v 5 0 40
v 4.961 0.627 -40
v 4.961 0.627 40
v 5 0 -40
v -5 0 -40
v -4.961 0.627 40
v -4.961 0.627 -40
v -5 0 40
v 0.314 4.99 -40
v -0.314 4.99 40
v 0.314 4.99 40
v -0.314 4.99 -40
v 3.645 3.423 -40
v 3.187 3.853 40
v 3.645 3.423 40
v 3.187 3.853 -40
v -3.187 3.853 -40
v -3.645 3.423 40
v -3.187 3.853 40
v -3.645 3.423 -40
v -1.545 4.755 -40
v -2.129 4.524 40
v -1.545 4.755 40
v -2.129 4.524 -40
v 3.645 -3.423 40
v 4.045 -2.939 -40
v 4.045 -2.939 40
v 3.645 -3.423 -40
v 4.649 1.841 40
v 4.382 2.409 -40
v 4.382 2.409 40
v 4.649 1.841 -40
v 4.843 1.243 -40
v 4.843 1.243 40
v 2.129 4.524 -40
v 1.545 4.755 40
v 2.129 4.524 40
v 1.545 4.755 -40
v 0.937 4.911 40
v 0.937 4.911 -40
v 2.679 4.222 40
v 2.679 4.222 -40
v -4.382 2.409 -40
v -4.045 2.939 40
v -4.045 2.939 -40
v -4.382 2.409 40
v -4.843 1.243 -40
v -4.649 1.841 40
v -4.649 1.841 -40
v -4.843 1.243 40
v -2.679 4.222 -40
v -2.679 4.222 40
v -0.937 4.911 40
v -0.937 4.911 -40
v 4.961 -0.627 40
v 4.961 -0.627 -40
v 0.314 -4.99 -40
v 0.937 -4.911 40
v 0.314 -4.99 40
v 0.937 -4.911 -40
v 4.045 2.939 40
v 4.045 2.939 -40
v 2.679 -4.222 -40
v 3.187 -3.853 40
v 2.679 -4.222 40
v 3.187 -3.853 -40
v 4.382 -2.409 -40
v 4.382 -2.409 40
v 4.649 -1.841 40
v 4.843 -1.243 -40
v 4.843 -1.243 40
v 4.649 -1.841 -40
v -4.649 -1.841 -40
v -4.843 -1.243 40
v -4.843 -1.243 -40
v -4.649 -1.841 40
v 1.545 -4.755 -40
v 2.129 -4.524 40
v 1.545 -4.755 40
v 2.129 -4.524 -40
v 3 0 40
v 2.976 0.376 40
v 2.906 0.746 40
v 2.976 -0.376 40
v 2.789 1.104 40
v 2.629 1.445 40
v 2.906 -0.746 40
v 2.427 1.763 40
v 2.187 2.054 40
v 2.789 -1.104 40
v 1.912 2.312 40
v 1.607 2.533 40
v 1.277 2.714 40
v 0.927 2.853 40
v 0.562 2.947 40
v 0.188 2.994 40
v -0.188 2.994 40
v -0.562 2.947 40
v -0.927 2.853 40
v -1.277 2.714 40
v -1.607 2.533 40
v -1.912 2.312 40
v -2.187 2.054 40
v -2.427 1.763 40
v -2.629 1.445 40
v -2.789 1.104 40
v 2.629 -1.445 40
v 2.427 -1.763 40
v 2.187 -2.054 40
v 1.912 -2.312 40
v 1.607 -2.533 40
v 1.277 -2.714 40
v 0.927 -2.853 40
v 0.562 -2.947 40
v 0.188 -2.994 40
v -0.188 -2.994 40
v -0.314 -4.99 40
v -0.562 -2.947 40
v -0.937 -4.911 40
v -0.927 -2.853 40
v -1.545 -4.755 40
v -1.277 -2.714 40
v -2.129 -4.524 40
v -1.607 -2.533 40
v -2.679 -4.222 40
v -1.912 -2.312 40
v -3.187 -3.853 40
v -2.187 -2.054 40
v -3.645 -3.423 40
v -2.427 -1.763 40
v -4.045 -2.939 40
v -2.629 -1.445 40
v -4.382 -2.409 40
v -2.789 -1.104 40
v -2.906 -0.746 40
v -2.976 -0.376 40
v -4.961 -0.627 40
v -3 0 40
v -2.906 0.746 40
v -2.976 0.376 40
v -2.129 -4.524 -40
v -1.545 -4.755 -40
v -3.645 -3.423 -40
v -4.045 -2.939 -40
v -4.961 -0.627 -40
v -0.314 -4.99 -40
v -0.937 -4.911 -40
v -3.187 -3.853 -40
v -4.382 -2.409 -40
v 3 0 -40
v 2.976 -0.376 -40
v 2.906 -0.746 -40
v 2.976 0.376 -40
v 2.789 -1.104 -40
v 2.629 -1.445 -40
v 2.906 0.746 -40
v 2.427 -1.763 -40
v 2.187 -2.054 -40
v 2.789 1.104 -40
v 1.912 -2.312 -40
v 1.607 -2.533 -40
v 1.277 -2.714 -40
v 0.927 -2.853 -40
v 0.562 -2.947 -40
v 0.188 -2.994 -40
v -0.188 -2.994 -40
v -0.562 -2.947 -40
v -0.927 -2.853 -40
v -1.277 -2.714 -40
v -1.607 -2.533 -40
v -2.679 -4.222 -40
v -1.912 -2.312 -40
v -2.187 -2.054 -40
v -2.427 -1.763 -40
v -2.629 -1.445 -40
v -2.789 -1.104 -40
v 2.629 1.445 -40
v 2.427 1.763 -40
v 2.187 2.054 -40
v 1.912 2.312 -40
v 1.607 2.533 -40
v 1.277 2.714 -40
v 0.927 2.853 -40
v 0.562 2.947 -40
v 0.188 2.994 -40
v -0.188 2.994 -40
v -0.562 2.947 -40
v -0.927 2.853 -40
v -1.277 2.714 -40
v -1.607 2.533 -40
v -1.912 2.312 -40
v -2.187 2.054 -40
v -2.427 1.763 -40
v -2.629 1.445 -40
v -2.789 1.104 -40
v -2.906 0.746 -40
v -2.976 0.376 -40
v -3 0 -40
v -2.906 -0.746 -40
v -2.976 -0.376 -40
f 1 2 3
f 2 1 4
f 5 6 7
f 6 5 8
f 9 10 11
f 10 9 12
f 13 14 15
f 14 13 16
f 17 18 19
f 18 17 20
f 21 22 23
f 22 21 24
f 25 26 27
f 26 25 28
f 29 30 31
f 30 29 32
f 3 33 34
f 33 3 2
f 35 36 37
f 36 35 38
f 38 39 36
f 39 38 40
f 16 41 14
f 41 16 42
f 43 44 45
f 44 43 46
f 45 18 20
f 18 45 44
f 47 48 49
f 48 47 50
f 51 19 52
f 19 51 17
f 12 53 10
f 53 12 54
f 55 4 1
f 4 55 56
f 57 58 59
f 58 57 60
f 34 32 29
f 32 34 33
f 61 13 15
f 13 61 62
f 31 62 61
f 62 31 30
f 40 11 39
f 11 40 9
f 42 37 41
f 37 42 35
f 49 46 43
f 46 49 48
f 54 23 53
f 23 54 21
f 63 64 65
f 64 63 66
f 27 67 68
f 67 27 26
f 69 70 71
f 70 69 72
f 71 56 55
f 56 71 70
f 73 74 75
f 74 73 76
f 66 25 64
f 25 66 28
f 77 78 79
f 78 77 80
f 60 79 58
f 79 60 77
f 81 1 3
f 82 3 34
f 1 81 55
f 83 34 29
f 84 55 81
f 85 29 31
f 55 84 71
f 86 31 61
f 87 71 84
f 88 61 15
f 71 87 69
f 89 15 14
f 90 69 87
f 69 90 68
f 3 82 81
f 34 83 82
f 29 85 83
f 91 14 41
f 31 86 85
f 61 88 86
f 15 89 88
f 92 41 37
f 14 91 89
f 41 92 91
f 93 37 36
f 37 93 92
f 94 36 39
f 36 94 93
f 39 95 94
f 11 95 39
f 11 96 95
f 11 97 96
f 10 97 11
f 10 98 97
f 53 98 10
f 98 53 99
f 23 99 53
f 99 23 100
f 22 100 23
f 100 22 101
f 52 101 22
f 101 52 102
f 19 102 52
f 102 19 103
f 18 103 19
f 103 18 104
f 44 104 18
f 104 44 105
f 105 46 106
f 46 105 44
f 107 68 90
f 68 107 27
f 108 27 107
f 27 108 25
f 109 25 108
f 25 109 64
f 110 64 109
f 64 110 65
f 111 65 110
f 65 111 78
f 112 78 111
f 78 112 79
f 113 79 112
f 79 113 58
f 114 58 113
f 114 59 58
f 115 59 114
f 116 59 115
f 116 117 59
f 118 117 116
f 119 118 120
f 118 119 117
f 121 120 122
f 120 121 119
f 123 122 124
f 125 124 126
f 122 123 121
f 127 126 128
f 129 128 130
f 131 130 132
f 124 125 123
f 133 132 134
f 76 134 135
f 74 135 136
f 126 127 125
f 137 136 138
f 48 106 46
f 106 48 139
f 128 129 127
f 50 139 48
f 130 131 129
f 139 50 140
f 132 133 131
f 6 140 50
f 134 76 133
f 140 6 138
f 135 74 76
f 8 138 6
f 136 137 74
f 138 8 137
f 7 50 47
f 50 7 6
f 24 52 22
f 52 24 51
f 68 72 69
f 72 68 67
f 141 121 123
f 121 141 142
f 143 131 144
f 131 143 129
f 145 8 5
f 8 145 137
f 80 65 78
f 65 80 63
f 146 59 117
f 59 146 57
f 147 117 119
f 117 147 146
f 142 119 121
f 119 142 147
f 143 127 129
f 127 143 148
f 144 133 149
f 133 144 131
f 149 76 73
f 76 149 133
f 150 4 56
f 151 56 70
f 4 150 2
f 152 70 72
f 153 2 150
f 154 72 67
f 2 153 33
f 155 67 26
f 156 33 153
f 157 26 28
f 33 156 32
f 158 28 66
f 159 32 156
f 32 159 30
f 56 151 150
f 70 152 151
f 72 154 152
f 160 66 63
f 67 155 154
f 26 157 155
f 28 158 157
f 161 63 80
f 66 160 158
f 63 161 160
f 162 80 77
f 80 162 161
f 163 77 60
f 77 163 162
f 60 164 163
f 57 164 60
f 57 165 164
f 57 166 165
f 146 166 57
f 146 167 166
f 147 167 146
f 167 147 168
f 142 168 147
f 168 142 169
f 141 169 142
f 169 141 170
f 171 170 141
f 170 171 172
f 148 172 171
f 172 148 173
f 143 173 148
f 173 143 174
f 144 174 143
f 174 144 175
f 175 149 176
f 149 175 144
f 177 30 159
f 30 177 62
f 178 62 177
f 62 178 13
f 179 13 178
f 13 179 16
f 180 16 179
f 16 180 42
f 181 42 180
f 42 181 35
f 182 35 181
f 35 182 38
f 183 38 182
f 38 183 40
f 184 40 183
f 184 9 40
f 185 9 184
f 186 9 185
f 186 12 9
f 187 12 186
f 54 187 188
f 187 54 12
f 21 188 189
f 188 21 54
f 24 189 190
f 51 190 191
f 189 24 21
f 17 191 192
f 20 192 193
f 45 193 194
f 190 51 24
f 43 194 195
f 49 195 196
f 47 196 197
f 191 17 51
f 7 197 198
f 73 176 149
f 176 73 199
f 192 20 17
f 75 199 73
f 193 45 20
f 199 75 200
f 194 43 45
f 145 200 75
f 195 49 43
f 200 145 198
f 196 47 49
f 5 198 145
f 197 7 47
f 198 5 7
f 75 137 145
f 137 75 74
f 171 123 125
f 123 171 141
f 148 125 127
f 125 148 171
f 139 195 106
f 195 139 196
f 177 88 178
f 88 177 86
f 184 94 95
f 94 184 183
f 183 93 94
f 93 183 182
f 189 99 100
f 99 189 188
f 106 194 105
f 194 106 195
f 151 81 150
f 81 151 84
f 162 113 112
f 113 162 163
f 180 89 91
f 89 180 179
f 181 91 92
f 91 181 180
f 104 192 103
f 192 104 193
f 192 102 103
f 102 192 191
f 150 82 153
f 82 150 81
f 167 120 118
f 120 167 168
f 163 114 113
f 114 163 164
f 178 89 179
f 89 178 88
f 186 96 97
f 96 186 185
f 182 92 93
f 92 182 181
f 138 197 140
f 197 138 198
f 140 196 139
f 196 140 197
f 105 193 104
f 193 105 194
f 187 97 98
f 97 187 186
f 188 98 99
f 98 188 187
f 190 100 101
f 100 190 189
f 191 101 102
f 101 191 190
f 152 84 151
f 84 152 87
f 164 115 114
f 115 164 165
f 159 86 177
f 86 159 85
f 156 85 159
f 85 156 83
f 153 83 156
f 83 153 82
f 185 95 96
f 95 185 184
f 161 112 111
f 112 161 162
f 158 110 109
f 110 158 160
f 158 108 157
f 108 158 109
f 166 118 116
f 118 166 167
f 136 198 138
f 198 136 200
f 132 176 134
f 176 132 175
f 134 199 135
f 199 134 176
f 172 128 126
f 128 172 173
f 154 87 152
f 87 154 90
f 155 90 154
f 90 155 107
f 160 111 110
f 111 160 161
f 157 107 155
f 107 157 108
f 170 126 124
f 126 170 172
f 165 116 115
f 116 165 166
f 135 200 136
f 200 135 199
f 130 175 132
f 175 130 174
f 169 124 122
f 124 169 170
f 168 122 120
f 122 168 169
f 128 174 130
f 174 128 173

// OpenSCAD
$fn = 50;


difference() {
	union() {
		translate(v = [0, 0, -40.0000000000]) {
			cylinder(h = 80, r = 5.0000000000);
		}
	}
	union() {
		translate(v = [0, 0, -100.0000000000]) {
			cylinder(h = 200, r = 3.0000000000);
		}
	}
}
